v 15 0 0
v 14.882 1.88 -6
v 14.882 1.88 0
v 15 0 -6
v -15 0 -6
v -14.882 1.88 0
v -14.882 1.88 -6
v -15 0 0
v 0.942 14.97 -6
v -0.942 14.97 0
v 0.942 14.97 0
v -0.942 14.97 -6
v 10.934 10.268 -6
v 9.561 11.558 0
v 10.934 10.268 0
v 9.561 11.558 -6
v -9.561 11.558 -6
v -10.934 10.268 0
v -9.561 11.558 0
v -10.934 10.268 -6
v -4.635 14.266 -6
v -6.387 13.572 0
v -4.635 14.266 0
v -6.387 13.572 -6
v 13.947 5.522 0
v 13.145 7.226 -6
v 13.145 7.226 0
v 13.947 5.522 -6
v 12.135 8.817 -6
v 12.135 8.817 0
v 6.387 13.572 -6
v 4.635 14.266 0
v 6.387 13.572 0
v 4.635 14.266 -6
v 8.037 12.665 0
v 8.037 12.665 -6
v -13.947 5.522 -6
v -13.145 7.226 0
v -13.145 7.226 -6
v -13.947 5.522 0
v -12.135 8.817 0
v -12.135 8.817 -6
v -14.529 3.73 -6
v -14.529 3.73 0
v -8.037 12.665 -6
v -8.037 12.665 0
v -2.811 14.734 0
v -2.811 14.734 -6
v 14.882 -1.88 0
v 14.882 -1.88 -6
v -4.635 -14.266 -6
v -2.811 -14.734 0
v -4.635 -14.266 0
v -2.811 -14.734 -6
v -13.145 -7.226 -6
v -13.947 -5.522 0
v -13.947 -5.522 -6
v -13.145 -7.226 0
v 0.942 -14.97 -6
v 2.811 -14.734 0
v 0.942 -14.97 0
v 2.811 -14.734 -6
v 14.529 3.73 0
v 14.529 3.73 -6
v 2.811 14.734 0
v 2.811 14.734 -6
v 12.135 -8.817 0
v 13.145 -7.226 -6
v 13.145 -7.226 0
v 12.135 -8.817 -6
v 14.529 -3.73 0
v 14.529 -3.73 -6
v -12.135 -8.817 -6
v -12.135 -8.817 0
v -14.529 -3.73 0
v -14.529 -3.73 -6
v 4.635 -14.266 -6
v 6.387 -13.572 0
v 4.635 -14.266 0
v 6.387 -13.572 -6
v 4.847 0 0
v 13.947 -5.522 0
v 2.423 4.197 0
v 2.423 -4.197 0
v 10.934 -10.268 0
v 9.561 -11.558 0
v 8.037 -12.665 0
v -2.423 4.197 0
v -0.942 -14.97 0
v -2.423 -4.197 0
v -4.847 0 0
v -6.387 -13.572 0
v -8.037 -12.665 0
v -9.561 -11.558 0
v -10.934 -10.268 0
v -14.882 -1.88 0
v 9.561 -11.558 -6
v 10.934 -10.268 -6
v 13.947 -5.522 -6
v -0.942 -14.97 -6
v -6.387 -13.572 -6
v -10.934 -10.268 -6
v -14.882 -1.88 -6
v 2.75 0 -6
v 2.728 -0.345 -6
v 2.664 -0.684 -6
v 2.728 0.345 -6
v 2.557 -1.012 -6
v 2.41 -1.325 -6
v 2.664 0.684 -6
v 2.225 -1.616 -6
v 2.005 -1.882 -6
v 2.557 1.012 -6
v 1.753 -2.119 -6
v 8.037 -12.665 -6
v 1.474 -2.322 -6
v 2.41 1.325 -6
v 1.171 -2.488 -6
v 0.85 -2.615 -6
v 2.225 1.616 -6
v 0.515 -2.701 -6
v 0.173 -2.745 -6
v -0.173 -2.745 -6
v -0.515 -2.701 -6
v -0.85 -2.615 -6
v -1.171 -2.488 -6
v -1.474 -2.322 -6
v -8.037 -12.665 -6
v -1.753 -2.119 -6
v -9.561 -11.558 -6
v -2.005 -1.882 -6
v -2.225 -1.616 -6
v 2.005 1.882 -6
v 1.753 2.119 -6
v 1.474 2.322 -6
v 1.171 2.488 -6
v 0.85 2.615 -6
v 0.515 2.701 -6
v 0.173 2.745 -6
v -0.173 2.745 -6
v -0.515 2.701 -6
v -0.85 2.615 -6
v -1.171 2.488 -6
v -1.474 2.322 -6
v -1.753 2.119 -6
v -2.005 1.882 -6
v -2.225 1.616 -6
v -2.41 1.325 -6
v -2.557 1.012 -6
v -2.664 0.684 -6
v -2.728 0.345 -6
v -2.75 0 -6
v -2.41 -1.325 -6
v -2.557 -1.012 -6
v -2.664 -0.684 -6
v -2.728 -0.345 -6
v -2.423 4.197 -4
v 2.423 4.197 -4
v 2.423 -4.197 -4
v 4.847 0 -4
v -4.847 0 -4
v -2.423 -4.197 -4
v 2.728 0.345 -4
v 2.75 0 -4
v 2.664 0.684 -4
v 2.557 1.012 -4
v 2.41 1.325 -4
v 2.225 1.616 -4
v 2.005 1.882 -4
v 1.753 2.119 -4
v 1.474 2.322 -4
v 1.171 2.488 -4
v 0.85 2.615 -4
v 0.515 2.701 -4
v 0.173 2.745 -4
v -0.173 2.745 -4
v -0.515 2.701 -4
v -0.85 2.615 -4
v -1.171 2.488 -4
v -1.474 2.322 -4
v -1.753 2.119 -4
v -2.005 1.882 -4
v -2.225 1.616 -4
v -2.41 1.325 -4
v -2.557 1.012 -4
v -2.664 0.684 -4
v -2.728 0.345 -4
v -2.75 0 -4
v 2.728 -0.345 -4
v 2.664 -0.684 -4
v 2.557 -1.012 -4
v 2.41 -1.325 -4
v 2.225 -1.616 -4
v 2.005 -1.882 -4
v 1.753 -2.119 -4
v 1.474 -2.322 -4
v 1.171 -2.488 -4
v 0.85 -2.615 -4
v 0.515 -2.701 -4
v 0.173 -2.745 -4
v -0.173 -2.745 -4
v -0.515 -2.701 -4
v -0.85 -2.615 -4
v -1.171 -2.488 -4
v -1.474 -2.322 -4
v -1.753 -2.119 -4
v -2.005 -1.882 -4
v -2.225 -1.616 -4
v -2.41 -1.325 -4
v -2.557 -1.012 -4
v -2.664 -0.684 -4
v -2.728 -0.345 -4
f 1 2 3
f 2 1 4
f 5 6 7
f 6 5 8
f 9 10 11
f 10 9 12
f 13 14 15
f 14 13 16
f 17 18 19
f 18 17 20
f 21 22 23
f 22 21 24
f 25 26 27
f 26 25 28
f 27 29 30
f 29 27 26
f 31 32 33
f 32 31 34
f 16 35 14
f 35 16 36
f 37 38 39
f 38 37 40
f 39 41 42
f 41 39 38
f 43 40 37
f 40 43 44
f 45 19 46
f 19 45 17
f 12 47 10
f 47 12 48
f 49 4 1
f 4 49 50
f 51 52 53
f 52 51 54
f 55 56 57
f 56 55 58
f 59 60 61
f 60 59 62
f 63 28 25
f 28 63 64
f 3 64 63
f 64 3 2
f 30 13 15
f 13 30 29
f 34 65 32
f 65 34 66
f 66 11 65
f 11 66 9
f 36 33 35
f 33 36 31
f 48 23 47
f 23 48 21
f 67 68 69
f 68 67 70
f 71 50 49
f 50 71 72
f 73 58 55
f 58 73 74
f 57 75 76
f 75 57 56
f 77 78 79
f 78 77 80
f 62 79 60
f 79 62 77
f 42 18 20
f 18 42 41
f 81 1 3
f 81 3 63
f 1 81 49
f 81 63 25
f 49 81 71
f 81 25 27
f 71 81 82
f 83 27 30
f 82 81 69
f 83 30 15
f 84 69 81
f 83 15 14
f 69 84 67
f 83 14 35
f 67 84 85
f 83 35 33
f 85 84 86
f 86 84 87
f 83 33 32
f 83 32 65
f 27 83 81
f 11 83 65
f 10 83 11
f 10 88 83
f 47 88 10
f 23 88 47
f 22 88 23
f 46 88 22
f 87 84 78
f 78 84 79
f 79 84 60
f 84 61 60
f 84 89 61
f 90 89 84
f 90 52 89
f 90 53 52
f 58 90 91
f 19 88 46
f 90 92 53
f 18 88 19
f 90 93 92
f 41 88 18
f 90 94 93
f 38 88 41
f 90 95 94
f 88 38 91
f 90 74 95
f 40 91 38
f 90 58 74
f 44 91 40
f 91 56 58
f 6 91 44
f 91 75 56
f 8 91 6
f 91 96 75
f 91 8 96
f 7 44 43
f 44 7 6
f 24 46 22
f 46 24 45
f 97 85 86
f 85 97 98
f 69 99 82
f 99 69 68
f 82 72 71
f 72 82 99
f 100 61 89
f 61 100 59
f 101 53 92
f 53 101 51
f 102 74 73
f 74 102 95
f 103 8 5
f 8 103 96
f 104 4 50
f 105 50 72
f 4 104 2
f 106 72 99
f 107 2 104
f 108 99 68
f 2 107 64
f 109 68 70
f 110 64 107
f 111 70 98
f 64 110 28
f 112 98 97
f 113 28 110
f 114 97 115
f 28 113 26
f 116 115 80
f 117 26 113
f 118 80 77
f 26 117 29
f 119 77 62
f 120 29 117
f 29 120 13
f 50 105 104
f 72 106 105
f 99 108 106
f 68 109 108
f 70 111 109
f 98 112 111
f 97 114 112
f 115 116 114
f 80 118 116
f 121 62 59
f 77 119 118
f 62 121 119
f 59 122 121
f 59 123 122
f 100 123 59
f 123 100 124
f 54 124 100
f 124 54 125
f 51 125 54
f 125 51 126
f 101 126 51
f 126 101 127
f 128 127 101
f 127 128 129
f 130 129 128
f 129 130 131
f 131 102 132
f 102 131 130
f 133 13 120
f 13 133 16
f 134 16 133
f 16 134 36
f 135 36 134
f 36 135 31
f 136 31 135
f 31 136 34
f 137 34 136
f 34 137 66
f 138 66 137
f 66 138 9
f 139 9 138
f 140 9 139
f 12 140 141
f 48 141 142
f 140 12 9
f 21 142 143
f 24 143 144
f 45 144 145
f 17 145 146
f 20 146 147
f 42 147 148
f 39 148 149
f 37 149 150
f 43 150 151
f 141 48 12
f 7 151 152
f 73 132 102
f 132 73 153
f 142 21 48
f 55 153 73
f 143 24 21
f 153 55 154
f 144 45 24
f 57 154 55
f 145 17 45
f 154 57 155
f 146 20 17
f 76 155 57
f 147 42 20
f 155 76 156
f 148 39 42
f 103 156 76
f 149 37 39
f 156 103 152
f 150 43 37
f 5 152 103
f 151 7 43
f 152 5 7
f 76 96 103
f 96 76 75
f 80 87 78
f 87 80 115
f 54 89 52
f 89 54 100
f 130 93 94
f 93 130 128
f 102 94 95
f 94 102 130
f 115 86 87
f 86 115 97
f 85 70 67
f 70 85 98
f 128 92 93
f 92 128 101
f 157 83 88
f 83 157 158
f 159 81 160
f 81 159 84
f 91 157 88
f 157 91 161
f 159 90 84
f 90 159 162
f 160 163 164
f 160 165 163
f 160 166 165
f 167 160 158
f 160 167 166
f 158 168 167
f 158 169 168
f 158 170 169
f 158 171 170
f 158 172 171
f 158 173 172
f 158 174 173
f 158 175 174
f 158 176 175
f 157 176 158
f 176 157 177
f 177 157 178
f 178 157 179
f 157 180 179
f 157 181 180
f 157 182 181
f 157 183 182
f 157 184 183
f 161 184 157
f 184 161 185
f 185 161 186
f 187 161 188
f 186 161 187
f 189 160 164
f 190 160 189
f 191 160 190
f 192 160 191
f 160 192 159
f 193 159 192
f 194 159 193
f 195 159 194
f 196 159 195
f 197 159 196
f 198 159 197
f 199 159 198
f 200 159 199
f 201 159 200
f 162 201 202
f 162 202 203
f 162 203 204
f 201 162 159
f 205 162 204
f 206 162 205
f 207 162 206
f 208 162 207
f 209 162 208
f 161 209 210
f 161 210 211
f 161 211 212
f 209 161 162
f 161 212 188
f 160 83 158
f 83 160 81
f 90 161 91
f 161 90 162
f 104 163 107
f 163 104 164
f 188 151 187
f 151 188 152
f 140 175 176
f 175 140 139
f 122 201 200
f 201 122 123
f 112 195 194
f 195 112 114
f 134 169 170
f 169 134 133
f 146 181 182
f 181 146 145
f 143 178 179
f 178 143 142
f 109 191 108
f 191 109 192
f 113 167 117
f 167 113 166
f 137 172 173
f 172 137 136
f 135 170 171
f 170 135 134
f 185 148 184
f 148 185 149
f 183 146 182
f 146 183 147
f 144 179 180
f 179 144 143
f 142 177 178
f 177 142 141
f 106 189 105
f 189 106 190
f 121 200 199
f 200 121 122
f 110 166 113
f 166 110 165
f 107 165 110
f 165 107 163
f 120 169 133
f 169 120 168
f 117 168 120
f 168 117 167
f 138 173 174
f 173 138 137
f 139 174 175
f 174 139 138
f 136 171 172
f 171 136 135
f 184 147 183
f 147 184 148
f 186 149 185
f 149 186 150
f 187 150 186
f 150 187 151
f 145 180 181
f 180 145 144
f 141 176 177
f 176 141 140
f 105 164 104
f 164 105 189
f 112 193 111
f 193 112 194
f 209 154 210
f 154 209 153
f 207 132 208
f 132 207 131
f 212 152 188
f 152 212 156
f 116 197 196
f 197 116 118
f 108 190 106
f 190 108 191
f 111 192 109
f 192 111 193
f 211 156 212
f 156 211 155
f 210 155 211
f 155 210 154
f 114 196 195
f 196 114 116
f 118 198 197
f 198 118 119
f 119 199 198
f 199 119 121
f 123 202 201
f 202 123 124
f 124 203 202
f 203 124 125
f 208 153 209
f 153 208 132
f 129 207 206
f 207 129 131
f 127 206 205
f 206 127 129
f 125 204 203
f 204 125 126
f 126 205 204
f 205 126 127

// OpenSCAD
$fn = 50;


difference() {
	union() {
		translate(v = [0, 0, -6.0000000000]) {
			cylinder(h = 6.0000000000, r = 15.0000000000);
		}
		translate(v = [0, 0, -4.5000000000]) {
			cylinder(h = 4.5000000000, r = 2.8750000000);
		}
	}
	union() {
		translate(v = [0, 0, 0]) {
			rotate(a = [0, 0, 0]) {
				difference() {
					union() {
						translate(v = [0, 0, -4]) {
							#linear_extrude(height = 4) {
								polygon(points = [[4.8468000000, 0.0000000000], [2.4234000000, 4.1974519271], [-2.4234000000, 4.1974519271], [-4.8468000000, 0.0000000000], [-2.4234000000, -4.1974519271], [2.4234000000, -4.1974519271]]);
							}
						}
					}
					union();
				}
			}
		}
		#translate(v = [0, 0, -100.0000000000]) {
			cylinder(h = 200, r = 2.7500000000);
		}
	}
}
